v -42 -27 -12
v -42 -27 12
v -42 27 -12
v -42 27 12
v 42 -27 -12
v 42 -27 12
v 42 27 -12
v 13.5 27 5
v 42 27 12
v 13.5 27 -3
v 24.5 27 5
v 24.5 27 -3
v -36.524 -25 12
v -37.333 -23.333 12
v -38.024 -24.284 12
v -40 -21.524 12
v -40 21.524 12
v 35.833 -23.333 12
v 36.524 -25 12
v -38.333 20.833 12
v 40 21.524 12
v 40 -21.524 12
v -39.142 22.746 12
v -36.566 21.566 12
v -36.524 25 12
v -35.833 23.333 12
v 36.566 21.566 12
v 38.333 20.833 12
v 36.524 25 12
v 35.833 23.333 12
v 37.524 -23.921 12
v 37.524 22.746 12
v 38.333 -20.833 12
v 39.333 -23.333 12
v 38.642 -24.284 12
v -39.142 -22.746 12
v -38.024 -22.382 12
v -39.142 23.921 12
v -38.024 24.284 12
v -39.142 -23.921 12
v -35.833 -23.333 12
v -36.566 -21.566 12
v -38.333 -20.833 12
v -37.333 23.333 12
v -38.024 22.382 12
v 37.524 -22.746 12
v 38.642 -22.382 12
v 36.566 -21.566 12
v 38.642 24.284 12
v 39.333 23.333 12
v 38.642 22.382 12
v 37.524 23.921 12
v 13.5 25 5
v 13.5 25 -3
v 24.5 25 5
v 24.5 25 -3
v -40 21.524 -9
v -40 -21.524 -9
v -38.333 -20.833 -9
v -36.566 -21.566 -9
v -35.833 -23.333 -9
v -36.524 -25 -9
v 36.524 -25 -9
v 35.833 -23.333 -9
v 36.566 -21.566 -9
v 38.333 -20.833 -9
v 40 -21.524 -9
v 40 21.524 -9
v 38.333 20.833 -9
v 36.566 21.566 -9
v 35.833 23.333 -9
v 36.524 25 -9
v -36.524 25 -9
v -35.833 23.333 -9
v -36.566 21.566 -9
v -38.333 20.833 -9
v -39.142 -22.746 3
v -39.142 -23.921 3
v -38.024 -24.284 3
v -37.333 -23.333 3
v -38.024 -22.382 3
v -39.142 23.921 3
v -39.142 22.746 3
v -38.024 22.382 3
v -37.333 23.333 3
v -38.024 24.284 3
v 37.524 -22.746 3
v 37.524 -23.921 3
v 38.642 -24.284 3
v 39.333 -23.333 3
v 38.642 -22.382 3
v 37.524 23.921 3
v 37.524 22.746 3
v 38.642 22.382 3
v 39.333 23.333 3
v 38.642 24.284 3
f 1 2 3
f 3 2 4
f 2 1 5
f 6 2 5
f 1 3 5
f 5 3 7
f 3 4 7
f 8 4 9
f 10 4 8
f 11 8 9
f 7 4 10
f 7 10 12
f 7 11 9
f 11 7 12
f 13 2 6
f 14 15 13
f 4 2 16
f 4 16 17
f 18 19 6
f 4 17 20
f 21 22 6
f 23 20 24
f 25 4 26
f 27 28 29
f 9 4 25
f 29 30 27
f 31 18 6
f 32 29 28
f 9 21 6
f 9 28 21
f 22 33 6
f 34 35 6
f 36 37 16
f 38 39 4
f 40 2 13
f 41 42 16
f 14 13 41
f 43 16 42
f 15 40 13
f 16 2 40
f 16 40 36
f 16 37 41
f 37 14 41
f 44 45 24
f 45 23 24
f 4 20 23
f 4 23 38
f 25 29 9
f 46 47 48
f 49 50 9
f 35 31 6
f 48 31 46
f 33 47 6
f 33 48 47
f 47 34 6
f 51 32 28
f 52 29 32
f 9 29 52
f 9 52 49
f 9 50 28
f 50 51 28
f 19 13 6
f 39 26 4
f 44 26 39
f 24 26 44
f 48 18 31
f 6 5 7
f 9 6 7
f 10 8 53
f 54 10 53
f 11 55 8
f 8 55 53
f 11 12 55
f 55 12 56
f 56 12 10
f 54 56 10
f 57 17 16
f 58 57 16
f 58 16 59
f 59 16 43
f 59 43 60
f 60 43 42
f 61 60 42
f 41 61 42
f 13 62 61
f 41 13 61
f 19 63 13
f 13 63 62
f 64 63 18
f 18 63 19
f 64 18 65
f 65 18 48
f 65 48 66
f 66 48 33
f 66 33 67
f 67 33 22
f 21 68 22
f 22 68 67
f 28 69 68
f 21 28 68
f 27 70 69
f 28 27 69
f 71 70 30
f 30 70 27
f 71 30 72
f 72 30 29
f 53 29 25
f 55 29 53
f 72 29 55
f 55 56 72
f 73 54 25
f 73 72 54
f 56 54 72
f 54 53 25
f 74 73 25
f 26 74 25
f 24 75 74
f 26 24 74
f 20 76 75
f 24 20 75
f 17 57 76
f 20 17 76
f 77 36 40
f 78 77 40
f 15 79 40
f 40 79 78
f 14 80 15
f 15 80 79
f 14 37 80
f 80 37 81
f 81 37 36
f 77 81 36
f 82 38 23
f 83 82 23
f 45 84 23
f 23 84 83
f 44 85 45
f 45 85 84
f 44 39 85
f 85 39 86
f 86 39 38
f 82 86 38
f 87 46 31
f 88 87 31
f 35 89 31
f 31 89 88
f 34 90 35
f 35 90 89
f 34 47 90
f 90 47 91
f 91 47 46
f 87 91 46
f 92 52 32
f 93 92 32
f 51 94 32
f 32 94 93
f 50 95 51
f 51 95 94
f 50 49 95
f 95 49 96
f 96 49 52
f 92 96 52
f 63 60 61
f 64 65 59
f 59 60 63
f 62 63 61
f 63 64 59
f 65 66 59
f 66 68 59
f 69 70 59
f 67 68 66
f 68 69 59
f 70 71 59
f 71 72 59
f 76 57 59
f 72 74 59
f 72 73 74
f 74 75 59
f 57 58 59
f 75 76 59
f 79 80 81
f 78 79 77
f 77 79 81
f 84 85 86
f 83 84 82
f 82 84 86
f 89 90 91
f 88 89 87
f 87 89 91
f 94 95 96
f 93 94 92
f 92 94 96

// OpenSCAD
// Внутрений размер
len = 80;
width = 50;
height = 22;
p = 2;  // толщина стенок
d = 5;  // диаметер стоек
k1 = 10;// глубина отверстий в стойках
d1 = 2; // диаметер отверстий в стойках
mLen = 12.5;  // крепление длина
mHeigh = 12.5; // крепление шырина
mHd = 3; // диаметер отверстий в креплении
 
module mount()
{
  	difference()
  	{
   	union()
  	  {
  		 cube([mLen - mHeigh / 2, mHeigh, p]);
		 translate([(mLen - mHeigh /2), mHeigh /2, 0])
  		 cylinder(p, d = mHeigh);
     }
 	  translate([(mLen - mHeigh /2), mHeigh /2, 0])
  	  cylinder(p, d = mHd);
   }
}

module mounp_pos(pos)
{
   if(pos == 0)
   {
   	rotate(180, 0, 0)
		translate([ (len + p) / 2, (-mHeigh/2), -(height+p) / 2])
		mount();
   } else if(pos == 1)
   {
   	rotate(90, 0, 0)
		translate([ (width + p) / 2, (-mHeigh/2), -(height+p) / 2])
		mount();
   } else if(pos == 2)
   {
   	translate([ (len + p) / 2, (-mHeigh/2), -(height+p) / 2])
		mount();
   } else if(pos == 3)
   {
  	   rotate(-90, 0, 0)
   	translate([ (width + p) / 2, (-mHeigh/2), -(height+p) / 2])
		mount();
   }
}

module corn(x, y)
{
  translate([(len/2 -d /3) * x, (width/2 - d/3) * y, p / 2])
  	difference()
  	{
 		cylinder(h = height, d = d, center=true);
   	translate([0, 0, height - k1])
  		cylinder(h = k1*2, d = d1, center=true);
   }
}


module box()
{
union() {  
   difference() {
 		cube([len + p * 2, width + p * 2, height + p], center = true);
		translate([0, 0, p])
 		cube([len, width, height], center = true);

		translate([(len + p)/2 - 22, (width+p)/2, (height + p)/2 - 11])
 		cube([11, p+2, 8], center = true);

   }
	corn(1, 1);
	corn(-1, 1);
	corn(1, -1);
	corn(-1, -1);
   if(0)
   {
   	mounp_pos(0);
   	mounp_pos(1);
   	mounp_pos(2);
   	mounp_pos(3);
   }
 }
}


module box_hole(x,y)
{
	translate([(len/2 -d /3) * x, (width/2 - d/3) * y, 0])
  		cylinder(h = p + 0.5, d = d1, center=true);
}

module box_top() 
{
   difference() {
 		cube([len + p * 2, width + p * 2, p], center = true);
	box_hole(1, 1);
	box_hole(-1, 1);
	box_hole(1, -1);
	box_hole(-1, -1);

   }
}

box();
//translate([0, 0, (height + p + 6) / 2])
//box_top();
